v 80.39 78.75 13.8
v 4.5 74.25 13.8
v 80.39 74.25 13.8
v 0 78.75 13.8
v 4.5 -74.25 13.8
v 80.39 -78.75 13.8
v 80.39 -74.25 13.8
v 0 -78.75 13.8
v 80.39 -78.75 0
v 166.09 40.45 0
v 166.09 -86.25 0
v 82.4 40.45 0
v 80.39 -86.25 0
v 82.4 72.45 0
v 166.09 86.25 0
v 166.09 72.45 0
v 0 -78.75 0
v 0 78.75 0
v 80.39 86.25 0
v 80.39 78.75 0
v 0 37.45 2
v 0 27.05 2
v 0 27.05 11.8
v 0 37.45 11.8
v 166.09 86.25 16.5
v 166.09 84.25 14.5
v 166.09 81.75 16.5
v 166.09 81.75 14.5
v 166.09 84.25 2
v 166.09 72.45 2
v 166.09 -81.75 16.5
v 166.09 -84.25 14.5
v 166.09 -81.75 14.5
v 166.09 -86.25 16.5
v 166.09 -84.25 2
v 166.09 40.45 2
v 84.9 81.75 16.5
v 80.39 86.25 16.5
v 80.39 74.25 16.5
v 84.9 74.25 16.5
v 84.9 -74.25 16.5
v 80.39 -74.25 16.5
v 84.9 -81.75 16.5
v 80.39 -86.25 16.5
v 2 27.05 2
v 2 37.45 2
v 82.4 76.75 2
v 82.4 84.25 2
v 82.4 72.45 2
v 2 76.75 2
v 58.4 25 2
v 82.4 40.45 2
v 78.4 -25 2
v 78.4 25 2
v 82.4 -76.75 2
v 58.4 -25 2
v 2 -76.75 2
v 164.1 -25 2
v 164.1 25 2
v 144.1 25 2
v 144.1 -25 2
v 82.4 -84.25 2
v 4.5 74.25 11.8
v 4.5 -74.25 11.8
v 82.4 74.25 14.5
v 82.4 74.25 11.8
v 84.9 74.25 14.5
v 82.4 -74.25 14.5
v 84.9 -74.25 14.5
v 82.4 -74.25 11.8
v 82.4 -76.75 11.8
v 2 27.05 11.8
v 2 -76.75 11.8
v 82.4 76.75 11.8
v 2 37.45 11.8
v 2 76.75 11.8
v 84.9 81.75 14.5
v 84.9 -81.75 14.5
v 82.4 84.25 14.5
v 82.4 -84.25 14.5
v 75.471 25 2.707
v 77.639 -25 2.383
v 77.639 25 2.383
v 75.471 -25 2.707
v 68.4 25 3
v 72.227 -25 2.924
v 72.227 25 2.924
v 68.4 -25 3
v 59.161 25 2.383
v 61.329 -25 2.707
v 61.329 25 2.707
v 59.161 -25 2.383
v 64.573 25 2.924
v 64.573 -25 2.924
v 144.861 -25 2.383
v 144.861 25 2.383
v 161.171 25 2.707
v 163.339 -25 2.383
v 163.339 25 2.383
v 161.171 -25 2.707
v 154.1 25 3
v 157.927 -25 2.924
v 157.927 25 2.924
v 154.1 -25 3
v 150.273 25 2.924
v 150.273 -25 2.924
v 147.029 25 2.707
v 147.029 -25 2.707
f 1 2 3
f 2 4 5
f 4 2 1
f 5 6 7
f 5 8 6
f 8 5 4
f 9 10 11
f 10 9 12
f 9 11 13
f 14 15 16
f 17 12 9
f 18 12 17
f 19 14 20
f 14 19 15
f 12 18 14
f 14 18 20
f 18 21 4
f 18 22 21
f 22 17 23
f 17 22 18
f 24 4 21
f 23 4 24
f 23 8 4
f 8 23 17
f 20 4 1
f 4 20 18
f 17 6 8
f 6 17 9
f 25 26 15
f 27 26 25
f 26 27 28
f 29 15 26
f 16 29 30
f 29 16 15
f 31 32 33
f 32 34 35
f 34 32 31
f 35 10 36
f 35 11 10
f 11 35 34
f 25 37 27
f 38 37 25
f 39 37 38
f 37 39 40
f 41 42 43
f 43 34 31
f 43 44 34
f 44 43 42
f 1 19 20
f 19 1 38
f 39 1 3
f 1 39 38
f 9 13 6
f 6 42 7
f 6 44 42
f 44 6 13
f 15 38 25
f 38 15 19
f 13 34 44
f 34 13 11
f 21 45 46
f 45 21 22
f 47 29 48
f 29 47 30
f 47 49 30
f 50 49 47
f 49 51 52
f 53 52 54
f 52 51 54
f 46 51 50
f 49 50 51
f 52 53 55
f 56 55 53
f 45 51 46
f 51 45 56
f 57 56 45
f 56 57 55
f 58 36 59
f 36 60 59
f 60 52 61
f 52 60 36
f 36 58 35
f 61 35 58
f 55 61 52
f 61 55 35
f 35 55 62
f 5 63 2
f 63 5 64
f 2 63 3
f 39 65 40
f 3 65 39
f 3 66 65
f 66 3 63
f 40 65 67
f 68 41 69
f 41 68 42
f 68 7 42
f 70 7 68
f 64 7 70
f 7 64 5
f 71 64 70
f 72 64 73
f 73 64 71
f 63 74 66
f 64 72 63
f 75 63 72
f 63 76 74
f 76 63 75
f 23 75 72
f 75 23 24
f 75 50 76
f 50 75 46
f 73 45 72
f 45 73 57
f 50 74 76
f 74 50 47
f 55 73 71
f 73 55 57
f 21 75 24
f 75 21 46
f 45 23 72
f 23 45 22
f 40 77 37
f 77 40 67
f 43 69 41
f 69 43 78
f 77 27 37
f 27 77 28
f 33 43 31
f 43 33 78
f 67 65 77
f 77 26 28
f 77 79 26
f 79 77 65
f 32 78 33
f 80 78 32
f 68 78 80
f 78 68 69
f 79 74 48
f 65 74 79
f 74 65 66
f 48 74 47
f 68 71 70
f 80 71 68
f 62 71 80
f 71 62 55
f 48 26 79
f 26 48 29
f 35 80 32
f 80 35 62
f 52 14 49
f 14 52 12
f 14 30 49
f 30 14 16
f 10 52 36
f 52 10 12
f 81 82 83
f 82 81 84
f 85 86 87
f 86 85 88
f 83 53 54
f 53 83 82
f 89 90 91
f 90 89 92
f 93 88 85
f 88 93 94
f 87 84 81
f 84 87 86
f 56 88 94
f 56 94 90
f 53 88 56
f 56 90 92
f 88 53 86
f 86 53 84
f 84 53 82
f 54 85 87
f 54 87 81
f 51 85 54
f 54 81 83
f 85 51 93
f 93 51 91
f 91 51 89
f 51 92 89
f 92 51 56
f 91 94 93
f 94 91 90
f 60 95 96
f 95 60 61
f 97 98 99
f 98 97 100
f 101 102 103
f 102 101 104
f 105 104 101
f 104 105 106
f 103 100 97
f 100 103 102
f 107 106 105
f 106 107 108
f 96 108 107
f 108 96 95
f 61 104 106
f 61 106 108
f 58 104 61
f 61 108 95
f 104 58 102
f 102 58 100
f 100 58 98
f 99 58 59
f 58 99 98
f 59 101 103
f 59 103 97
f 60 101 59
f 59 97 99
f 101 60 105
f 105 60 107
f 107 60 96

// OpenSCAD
$fa = 1;
$fs = 0.4;

thickness = 2;
rim = 2.5;

large = 2000;
err = 0.01;

a5_thickness = 9.8;
a5_height = 153.5;
a5_width = 76.4;
a5_right_top = 32.8;
a5_right_bottom = 71.4;
a5_left_top = 43.3;
a5_left = 6.4;
a5_button_err = 2;

p7_shift = a5_width + 2 * thickness;
p7_height = 148.7 + 19.8;
p7_width = 81.7;
p7_thickness = 12.5;
p7_cam_center = 29.2;
p7_cam_width = 77.3;
p7_cam_height = 32;
p7_top = 55.4;
p7_bottom = 96.3;

clip_height = 50;
clip_width = 20;
clip_thickness = 1;


difference(){
    union() {
        translate([
            0,
            -0.5 * a5_height - thickness,
            0
        ])
        cube([
            a5_width + 2 * thickness,
            a5_height + 2 * thickness,
            a5_thickness + 2 * thickness,
        ]);

        translate([
            p7_shift - err,
            -0.5 * p7_height - thickness,
            0
        ])
        cube([
            p7_width + 2 * thickness,
            p7_height + 2 * thickness,
            p7_thickness + 2 * thickness,
        ]);
    }
    // rim
    translate([
        rim + thickness,
        -0.5 * a5_height + rim,
        thickness
    ])
    cube([
        large,
        a5_height - 2 * rim,
        large,
    ]);
    // phone
    translate([
        thickness,
        -0.5 * a5_height,
        thickness
    ])
    cube([
        large,
        a5_height,
        a5_thickness,
    ]);
    // port
    translate([
        -large / 2,
        0.5 * a5_height - a5_left_top - a5_left,
        thickness
    ])
    cube([
        large,
        a5_left + 2 * a5_button_err,
        a5_thickness
    ]);
    // rim
    translate([
        p7_shift + rim + thickness,
        -0.5 * p7_height + rim,
        thickness
    ])
    cube([
        large,
        p7_height - 2 * rim,
        large,
    ]);
    // phone
    translate([
        p7_shift + thickness,
        -0.5 * p7_height,
        thickness
    ])
    cube([
        large,
        p7_height,
        p7_thickness,
    ]);

    // cam
    translate([
        p7_shift + thickness,
        - 0.5 * p7_cam_center + (
            p7_height / 2 - p7_cam_center
        ),
        - err
    ])
    cube([
        large,
        p7_cam_height,
        large,
    ]);
}

translate([
    a5_width + thickness - clip_width / 2,
    -clip_height / 2,
    thickness,
])
scale([
    clip_width / 2 / clip_thickness,
    1,
    1
])
rotate([-90, 0, 0])
cylinder(r=clip_thickness, h=clip_height);


translate([
    p7_shift + p7_width + thickness - clip_width / 2,
    -clip_height / 2,
    thickness,
])
scale([
    clip_width / 2 / clip_thickness,
    1,
    1
])
rotate([-90, 0, 0])
cylinder(r=clip_thickness, h=clip_height);
